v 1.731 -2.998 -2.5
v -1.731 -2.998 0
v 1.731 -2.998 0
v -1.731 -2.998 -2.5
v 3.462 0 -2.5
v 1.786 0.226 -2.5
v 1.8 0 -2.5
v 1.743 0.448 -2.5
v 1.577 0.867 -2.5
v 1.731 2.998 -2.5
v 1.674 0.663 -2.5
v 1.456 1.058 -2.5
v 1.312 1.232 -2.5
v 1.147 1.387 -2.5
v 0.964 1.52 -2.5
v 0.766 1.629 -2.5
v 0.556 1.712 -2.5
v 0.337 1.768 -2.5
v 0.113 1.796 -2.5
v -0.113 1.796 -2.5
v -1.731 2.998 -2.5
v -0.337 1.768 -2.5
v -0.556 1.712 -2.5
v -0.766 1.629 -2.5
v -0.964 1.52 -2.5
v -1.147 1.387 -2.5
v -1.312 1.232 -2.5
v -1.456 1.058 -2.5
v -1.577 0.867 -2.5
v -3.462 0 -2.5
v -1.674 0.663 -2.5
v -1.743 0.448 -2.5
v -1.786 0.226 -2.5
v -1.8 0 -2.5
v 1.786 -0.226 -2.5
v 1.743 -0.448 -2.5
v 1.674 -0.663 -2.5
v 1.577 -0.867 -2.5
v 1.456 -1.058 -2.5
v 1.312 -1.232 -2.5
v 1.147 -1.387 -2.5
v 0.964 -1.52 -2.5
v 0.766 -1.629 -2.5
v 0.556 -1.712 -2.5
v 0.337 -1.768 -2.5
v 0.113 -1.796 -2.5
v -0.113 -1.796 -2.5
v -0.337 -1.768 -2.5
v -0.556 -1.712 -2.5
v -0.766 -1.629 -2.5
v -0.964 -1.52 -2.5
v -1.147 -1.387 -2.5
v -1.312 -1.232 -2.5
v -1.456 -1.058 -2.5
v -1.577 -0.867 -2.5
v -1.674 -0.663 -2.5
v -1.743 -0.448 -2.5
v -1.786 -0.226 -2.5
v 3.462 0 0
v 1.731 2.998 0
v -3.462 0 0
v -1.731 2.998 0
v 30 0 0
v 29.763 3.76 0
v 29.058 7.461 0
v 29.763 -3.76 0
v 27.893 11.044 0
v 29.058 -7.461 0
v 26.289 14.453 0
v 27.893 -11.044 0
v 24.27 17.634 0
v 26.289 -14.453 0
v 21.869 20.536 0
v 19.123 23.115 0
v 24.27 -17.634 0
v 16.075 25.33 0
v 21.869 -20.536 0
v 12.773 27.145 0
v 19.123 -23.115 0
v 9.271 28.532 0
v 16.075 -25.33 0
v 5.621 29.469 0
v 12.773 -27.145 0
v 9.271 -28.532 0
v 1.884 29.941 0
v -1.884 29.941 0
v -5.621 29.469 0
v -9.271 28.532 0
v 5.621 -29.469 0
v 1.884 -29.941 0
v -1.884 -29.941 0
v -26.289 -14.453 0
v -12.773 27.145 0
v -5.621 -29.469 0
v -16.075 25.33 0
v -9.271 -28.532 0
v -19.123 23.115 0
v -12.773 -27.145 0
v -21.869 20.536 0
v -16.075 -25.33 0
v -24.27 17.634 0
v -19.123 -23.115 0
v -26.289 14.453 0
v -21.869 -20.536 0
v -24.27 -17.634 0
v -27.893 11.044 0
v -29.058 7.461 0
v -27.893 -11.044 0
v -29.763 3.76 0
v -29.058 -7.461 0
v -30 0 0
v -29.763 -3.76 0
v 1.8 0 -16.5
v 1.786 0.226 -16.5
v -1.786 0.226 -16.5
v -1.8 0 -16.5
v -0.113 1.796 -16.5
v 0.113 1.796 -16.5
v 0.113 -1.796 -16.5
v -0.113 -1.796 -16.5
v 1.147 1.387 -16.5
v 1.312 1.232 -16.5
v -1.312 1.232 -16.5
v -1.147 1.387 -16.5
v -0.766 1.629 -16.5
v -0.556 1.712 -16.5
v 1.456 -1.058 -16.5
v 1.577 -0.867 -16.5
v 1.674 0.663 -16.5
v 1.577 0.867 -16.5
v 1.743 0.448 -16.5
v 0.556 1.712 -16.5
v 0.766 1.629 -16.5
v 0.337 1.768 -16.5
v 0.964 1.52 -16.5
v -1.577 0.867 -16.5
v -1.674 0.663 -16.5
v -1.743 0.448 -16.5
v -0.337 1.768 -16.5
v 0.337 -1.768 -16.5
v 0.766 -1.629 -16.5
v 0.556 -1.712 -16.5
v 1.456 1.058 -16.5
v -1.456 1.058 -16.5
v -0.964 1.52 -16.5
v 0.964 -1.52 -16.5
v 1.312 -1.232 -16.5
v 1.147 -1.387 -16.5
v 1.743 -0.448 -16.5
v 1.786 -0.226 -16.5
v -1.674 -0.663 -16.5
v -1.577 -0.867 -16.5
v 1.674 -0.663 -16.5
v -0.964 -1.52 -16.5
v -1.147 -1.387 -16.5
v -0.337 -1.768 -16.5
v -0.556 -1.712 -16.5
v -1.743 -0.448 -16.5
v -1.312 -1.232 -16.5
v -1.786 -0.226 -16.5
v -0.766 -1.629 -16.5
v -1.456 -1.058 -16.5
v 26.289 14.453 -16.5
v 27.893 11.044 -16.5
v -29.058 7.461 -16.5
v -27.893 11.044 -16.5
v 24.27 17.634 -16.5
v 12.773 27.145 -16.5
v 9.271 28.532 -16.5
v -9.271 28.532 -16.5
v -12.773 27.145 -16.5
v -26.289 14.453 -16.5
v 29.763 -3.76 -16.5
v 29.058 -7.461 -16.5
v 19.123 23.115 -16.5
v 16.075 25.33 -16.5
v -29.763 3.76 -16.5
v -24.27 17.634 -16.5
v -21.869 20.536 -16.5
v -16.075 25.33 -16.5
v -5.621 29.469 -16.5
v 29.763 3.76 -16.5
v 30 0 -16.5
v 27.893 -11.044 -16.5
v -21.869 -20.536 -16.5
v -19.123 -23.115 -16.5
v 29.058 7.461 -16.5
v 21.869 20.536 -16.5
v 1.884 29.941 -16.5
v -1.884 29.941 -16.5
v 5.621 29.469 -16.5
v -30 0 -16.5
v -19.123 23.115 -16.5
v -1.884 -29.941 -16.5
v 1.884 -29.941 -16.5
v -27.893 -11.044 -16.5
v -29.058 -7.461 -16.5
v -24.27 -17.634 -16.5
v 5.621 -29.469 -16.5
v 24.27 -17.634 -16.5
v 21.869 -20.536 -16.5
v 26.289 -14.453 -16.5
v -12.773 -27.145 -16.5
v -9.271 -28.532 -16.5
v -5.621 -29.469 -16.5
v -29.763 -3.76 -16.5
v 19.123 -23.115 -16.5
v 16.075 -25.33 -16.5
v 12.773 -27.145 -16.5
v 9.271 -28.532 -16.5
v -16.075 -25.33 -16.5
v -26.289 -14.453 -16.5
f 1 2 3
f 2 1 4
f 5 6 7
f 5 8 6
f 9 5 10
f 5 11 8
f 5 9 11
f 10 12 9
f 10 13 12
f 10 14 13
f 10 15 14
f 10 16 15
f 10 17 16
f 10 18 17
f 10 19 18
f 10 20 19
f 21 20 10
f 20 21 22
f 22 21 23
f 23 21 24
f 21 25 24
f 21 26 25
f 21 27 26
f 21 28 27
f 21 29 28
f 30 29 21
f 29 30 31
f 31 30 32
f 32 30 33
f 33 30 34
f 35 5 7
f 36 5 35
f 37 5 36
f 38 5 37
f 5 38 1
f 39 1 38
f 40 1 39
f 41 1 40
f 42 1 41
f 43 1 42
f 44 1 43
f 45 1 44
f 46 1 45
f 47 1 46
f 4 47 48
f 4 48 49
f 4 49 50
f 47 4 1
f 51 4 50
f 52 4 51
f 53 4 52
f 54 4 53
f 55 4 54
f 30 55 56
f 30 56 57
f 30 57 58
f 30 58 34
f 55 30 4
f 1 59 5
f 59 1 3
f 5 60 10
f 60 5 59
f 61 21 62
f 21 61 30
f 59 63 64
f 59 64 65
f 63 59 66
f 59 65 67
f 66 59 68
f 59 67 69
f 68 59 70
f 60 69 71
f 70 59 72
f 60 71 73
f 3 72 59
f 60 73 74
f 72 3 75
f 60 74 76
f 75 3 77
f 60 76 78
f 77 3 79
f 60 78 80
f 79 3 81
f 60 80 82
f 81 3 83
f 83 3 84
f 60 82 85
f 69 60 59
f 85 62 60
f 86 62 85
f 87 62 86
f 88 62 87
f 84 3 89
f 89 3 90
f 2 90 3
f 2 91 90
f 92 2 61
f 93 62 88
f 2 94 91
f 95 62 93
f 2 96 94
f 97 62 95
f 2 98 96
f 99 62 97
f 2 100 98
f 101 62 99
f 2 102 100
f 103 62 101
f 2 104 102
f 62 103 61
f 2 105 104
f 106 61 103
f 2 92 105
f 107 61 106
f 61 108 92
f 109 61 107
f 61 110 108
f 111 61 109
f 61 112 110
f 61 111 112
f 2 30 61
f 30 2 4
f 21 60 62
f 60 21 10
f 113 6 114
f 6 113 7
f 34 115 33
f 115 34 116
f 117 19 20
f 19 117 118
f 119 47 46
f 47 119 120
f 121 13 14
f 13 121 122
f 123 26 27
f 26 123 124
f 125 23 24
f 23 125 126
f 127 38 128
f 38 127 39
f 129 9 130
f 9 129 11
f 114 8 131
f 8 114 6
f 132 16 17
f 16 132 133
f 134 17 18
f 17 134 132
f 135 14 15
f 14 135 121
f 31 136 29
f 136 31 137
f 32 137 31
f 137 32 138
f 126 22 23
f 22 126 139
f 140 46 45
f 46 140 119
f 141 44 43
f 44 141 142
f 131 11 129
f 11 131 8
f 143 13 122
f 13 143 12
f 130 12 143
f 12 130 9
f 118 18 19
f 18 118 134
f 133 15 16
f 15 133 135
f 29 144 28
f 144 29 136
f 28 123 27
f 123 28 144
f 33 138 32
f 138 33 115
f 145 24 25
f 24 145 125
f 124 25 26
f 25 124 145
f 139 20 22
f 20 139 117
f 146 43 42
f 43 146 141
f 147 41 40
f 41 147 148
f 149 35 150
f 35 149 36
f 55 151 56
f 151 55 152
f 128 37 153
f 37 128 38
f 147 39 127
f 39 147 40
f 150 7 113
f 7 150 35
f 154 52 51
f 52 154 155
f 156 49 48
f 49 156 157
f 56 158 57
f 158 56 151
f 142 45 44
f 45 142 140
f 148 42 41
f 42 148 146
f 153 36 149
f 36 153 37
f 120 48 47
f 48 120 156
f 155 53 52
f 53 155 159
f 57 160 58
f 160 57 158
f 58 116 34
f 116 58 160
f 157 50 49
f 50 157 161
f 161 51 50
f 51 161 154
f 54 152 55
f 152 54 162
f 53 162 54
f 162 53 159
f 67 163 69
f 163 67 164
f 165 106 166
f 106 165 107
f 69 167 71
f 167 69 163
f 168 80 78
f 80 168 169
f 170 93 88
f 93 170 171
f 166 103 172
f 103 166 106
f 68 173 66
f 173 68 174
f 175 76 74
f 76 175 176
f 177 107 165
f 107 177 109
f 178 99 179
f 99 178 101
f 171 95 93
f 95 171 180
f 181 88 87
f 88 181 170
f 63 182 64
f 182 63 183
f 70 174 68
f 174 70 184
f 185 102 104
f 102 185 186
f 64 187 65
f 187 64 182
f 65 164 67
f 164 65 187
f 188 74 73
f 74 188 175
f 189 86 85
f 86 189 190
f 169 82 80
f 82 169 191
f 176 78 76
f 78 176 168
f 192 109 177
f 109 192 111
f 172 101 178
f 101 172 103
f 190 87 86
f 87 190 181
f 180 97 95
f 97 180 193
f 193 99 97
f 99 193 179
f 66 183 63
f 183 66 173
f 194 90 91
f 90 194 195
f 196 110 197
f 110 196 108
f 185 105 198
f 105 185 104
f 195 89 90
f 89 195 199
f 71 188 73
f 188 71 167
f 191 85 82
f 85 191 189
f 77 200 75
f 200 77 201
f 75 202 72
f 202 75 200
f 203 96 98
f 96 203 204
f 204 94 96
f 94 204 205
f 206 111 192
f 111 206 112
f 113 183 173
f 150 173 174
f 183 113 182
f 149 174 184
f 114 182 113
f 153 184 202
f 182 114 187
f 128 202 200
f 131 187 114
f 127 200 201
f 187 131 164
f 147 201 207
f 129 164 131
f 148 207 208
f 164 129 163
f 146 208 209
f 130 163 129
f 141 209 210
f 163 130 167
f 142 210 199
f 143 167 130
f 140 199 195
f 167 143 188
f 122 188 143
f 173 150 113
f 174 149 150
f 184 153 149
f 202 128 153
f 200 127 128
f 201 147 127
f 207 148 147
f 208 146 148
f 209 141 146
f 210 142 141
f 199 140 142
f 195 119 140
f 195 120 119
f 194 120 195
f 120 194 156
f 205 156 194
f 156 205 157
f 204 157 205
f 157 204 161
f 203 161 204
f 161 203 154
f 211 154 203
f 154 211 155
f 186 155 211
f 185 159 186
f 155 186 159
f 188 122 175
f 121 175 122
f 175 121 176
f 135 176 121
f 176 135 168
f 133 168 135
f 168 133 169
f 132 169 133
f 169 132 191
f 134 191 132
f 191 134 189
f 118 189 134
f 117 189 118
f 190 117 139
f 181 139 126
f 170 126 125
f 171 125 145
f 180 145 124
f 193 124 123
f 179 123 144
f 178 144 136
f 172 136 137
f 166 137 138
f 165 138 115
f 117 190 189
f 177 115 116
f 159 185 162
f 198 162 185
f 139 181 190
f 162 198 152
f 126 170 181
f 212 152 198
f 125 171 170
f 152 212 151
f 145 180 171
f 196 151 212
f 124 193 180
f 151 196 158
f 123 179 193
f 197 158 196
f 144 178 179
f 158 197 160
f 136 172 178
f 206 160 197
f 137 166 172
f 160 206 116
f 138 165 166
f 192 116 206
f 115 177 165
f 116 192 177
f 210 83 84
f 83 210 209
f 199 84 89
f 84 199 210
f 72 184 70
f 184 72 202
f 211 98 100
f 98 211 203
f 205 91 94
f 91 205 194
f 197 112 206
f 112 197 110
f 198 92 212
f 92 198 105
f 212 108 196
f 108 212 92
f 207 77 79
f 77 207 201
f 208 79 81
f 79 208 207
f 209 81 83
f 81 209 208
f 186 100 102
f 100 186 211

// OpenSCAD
$fn = 50;


difference() {
	union() {
		translate(v = [0, 0, -16.5000000000]) {
			cylinder(h = 16.5000000000, r = 30.0000000000);
		}
	}
	union() {
		translate(v = [0, 0, 0]) {
			rotate(a = [0, 0, 0]) {
				difference() {
					union() {
						translate(v = [0, 0, -2.5000000000]) {
							linear_extrude(height = 2.5000000000) {
								polygon(points = [[3.4620000000, 0.0000000000], [1.7310000000, 2.9981799479], [-1.7310000000, 2.9981799479], [-3.4620000000, 0.0000000000], [-1.7310000000, -2.9981799479], [1.7310000000, -2.9981799479]]);
							}
						}
					}
					union();
				}
			}
		}
		#translate(v = [0, 0, -100.0000000000]) {
			cylinder(h = 200, r = 1.8000000000);
		}
	}
}
